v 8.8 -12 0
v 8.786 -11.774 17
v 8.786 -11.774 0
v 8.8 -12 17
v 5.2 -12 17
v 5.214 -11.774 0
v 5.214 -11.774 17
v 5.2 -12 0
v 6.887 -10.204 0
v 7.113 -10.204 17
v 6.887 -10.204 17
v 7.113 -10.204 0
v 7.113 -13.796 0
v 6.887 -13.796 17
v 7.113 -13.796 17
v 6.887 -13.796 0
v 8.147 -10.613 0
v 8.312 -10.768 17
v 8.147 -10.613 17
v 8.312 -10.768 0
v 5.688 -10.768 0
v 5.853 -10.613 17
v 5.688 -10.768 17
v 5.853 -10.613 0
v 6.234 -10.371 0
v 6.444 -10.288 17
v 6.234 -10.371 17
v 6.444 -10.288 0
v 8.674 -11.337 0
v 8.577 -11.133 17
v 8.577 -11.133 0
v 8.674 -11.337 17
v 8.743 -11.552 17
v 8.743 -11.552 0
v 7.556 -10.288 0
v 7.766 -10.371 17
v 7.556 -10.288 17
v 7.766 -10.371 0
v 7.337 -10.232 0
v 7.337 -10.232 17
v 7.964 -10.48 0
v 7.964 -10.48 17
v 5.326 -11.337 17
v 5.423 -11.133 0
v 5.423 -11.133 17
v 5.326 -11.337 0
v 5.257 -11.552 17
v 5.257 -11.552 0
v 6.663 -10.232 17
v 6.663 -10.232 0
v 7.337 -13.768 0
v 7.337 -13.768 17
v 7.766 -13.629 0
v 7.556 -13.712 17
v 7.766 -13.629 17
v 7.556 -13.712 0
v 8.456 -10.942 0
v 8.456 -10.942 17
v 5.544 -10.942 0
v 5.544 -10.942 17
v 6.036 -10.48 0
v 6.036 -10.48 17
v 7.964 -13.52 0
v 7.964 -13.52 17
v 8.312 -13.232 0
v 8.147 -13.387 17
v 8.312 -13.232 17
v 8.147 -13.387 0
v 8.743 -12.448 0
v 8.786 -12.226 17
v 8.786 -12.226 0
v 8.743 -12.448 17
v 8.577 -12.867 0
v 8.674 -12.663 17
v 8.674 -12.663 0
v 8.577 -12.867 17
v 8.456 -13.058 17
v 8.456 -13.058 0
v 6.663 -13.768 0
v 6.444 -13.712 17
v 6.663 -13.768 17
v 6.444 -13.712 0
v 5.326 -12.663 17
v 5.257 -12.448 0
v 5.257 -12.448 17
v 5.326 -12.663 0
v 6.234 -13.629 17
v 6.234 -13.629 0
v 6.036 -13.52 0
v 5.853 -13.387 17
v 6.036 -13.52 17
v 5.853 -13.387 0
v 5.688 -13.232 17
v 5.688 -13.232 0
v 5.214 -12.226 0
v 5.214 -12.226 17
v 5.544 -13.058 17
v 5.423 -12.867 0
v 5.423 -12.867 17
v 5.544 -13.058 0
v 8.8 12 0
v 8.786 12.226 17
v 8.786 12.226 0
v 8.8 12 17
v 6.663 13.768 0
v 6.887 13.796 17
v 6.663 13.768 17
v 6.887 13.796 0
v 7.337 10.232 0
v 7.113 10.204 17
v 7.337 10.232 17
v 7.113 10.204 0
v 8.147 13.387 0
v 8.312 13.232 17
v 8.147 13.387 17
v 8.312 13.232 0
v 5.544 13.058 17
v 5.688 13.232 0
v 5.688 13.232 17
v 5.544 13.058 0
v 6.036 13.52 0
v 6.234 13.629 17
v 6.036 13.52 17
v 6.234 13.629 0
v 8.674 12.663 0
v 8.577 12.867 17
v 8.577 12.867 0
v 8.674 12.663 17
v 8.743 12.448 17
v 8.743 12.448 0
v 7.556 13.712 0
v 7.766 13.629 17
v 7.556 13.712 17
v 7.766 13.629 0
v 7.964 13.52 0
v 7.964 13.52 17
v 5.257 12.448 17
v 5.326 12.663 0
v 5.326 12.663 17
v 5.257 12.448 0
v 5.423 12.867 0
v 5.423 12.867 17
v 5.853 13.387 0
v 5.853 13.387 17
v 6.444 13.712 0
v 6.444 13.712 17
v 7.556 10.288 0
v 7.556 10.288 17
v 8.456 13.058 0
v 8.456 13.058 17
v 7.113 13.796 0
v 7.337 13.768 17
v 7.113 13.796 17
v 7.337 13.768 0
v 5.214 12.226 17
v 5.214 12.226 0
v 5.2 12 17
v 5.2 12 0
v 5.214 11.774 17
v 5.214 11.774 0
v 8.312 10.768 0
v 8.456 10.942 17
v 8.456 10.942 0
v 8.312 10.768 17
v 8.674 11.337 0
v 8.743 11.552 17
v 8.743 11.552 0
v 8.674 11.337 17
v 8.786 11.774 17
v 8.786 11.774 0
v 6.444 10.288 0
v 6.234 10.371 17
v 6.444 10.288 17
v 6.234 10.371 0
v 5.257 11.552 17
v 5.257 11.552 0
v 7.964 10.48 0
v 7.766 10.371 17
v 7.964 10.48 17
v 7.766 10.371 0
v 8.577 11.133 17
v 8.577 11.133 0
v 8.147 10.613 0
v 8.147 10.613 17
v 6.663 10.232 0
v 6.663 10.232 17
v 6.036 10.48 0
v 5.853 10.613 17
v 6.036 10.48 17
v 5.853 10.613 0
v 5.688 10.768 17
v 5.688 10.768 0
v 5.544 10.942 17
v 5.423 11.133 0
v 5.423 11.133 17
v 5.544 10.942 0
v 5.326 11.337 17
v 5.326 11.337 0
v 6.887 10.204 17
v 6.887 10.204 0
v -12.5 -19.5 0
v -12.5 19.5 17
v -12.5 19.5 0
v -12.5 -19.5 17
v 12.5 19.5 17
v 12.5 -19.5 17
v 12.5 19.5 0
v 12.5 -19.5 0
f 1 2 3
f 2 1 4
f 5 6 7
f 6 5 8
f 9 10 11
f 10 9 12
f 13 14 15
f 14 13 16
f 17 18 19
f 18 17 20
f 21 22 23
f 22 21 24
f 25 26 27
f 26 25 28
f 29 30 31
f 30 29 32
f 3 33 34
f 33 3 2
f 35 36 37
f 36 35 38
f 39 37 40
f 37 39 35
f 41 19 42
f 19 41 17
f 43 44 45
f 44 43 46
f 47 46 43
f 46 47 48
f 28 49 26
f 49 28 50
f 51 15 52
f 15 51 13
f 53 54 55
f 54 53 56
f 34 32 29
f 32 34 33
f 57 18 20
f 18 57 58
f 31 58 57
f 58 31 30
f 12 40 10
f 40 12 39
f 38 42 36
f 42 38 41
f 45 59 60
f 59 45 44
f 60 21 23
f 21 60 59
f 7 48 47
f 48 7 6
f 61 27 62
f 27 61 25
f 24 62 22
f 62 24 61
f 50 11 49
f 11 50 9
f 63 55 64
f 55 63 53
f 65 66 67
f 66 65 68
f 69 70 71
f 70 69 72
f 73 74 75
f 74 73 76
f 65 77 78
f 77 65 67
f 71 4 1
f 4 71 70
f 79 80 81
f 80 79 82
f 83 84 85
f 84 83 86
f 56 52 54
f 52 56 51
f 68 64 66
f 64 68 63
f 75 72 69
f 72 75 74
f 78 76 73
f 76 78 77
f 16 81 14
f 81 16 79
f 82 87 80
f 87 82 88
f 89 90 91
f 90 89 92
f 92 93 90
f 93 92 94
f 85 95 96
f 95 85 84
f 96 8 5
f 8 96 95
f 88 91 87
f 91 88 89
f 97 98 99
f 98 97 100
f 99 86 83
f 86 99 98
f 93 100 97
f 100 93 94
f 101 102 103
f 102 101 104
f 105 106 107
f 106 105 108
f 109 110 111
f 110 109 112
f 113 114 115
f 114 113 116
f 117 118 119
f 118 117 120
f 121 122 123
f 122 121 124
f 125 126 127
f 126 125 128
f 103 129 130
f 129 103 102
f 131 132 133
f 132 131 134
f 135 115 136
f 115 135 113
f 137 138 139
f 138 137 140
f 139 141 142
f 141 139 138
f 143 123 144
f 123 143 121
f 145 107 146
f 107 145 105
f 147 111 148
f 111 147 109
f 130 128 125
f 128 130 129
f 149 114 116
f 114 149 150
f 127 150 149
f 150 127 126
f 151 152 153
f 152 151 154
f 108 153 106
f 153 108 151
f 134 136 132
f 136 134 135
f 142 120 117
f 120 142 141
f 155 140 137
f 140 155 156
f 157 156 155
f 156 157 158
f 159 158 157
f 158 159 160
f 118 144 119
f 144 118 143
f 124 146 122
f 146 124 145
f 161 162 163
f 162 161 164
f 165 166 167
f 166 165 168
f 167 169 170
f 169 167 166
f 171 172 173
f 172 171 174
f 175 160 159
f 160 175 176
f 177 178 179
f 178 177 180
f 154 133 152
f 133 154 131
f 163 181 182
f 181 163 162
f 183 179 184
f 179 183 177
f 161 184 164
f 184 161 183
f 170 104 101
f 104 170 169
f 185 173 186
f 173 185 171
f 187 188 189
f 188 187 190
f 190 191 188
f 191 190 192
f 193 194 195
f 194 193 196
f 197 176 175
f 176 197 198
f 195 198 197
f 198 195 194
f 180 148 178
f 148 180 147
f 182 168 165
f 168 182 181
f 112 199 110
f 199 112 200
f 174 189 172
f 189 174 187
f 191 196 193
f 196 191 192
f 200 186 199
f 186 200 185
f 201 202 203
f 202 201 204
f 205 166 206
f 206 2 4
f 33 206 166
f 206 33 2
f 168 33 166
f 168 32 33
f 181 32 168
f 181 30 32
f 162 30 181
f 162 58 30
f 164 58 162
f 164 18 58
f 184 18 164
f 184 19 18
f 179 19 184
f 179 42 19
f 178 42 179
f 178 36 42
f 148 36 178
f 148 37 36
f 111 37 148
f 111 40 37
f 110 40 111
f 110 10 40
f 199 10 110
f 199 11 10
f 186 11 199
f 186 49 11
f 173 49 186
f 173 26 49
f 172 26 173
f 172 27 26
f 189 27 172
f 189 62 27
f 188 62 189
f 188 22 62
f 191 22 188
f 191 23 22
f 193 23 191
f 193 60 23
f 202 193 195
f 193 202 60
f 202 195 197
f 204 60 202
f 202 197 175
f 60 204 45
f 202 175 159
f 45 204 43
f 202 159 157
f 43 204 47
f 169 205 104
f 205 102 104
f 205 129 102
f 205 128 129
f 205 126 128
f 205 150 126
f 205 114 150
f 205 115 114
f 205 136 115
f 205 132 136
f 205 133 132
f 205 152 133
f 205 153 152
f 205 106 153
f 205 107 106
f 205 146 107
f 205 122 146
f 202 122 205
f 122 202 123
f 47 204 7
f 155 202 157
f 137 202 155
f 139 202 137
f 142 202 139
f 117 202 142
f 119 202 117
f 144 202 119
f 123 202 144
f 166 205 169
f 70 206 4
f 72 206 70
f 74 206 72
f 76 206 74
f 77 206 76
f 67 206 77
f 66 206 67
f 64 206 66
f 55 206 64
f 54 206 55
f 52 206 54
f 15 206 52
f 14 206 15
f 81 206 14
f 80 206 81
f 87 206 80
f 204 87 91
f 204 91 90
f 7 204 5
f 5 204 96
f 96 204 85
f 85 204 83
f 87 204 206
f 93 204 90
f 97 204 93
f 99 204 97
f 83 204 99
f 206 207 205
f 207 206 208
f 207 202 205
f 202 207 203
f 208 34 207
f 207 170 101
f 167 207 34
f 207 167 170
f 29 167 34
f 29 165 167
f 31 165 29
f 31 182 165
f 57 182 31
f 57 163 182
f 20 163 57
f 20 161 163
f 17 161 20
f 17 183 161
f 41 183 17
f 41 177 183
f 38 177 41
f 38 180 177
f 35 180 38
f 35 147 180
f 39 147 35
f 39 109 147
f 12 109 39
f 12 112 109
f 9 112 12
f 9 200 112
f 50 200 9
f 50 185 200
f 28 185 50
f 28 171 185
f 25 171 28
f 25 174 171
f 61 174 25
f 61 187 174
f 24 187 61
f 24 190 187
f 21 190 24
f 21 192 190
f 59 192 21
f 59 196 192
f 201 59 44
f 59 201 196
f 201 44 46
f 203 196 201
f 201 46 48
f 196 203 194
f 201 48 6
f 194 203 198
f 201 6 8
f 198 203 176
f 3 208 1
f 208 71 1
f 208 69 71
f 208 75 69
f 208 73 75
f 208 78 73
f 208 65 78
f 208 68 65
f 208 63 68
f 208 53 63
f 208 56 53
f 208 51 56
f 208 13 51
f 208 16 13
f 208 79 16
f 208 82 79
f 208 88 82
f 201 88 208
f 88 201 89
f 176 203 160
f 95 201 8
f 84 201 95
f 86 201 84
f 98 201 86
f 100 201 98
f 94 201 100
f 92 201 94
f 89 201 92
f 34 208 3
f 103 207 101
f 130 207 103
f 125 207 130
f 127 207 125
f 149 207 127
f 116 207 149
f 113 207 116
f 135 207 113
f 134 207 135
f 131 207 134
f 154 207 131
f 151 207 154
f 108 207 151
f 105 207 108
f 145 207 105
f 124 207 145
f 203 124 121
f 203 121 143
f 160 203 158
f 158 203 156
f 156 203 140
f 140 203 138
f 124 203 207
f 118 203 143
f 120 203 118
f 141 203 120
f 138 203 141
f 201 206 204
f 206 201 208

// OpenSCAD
$fn = 50;


difference() {
	union() {
		translate(v = [-12.5000000000, -19.5000000000, 0]) {
			cube(size = [25, 39, 17]);
		}
	}
	union() {
		#translate(v = [7, -12, -100.0000000000]) {
			cylinder(h = 200, r = 1.8000000000);
		}
		#translate(v = [7, 12, -100.0000000000]) {
			cylinder(h = 200, r = 1.8000000000);
		}
	}
}
